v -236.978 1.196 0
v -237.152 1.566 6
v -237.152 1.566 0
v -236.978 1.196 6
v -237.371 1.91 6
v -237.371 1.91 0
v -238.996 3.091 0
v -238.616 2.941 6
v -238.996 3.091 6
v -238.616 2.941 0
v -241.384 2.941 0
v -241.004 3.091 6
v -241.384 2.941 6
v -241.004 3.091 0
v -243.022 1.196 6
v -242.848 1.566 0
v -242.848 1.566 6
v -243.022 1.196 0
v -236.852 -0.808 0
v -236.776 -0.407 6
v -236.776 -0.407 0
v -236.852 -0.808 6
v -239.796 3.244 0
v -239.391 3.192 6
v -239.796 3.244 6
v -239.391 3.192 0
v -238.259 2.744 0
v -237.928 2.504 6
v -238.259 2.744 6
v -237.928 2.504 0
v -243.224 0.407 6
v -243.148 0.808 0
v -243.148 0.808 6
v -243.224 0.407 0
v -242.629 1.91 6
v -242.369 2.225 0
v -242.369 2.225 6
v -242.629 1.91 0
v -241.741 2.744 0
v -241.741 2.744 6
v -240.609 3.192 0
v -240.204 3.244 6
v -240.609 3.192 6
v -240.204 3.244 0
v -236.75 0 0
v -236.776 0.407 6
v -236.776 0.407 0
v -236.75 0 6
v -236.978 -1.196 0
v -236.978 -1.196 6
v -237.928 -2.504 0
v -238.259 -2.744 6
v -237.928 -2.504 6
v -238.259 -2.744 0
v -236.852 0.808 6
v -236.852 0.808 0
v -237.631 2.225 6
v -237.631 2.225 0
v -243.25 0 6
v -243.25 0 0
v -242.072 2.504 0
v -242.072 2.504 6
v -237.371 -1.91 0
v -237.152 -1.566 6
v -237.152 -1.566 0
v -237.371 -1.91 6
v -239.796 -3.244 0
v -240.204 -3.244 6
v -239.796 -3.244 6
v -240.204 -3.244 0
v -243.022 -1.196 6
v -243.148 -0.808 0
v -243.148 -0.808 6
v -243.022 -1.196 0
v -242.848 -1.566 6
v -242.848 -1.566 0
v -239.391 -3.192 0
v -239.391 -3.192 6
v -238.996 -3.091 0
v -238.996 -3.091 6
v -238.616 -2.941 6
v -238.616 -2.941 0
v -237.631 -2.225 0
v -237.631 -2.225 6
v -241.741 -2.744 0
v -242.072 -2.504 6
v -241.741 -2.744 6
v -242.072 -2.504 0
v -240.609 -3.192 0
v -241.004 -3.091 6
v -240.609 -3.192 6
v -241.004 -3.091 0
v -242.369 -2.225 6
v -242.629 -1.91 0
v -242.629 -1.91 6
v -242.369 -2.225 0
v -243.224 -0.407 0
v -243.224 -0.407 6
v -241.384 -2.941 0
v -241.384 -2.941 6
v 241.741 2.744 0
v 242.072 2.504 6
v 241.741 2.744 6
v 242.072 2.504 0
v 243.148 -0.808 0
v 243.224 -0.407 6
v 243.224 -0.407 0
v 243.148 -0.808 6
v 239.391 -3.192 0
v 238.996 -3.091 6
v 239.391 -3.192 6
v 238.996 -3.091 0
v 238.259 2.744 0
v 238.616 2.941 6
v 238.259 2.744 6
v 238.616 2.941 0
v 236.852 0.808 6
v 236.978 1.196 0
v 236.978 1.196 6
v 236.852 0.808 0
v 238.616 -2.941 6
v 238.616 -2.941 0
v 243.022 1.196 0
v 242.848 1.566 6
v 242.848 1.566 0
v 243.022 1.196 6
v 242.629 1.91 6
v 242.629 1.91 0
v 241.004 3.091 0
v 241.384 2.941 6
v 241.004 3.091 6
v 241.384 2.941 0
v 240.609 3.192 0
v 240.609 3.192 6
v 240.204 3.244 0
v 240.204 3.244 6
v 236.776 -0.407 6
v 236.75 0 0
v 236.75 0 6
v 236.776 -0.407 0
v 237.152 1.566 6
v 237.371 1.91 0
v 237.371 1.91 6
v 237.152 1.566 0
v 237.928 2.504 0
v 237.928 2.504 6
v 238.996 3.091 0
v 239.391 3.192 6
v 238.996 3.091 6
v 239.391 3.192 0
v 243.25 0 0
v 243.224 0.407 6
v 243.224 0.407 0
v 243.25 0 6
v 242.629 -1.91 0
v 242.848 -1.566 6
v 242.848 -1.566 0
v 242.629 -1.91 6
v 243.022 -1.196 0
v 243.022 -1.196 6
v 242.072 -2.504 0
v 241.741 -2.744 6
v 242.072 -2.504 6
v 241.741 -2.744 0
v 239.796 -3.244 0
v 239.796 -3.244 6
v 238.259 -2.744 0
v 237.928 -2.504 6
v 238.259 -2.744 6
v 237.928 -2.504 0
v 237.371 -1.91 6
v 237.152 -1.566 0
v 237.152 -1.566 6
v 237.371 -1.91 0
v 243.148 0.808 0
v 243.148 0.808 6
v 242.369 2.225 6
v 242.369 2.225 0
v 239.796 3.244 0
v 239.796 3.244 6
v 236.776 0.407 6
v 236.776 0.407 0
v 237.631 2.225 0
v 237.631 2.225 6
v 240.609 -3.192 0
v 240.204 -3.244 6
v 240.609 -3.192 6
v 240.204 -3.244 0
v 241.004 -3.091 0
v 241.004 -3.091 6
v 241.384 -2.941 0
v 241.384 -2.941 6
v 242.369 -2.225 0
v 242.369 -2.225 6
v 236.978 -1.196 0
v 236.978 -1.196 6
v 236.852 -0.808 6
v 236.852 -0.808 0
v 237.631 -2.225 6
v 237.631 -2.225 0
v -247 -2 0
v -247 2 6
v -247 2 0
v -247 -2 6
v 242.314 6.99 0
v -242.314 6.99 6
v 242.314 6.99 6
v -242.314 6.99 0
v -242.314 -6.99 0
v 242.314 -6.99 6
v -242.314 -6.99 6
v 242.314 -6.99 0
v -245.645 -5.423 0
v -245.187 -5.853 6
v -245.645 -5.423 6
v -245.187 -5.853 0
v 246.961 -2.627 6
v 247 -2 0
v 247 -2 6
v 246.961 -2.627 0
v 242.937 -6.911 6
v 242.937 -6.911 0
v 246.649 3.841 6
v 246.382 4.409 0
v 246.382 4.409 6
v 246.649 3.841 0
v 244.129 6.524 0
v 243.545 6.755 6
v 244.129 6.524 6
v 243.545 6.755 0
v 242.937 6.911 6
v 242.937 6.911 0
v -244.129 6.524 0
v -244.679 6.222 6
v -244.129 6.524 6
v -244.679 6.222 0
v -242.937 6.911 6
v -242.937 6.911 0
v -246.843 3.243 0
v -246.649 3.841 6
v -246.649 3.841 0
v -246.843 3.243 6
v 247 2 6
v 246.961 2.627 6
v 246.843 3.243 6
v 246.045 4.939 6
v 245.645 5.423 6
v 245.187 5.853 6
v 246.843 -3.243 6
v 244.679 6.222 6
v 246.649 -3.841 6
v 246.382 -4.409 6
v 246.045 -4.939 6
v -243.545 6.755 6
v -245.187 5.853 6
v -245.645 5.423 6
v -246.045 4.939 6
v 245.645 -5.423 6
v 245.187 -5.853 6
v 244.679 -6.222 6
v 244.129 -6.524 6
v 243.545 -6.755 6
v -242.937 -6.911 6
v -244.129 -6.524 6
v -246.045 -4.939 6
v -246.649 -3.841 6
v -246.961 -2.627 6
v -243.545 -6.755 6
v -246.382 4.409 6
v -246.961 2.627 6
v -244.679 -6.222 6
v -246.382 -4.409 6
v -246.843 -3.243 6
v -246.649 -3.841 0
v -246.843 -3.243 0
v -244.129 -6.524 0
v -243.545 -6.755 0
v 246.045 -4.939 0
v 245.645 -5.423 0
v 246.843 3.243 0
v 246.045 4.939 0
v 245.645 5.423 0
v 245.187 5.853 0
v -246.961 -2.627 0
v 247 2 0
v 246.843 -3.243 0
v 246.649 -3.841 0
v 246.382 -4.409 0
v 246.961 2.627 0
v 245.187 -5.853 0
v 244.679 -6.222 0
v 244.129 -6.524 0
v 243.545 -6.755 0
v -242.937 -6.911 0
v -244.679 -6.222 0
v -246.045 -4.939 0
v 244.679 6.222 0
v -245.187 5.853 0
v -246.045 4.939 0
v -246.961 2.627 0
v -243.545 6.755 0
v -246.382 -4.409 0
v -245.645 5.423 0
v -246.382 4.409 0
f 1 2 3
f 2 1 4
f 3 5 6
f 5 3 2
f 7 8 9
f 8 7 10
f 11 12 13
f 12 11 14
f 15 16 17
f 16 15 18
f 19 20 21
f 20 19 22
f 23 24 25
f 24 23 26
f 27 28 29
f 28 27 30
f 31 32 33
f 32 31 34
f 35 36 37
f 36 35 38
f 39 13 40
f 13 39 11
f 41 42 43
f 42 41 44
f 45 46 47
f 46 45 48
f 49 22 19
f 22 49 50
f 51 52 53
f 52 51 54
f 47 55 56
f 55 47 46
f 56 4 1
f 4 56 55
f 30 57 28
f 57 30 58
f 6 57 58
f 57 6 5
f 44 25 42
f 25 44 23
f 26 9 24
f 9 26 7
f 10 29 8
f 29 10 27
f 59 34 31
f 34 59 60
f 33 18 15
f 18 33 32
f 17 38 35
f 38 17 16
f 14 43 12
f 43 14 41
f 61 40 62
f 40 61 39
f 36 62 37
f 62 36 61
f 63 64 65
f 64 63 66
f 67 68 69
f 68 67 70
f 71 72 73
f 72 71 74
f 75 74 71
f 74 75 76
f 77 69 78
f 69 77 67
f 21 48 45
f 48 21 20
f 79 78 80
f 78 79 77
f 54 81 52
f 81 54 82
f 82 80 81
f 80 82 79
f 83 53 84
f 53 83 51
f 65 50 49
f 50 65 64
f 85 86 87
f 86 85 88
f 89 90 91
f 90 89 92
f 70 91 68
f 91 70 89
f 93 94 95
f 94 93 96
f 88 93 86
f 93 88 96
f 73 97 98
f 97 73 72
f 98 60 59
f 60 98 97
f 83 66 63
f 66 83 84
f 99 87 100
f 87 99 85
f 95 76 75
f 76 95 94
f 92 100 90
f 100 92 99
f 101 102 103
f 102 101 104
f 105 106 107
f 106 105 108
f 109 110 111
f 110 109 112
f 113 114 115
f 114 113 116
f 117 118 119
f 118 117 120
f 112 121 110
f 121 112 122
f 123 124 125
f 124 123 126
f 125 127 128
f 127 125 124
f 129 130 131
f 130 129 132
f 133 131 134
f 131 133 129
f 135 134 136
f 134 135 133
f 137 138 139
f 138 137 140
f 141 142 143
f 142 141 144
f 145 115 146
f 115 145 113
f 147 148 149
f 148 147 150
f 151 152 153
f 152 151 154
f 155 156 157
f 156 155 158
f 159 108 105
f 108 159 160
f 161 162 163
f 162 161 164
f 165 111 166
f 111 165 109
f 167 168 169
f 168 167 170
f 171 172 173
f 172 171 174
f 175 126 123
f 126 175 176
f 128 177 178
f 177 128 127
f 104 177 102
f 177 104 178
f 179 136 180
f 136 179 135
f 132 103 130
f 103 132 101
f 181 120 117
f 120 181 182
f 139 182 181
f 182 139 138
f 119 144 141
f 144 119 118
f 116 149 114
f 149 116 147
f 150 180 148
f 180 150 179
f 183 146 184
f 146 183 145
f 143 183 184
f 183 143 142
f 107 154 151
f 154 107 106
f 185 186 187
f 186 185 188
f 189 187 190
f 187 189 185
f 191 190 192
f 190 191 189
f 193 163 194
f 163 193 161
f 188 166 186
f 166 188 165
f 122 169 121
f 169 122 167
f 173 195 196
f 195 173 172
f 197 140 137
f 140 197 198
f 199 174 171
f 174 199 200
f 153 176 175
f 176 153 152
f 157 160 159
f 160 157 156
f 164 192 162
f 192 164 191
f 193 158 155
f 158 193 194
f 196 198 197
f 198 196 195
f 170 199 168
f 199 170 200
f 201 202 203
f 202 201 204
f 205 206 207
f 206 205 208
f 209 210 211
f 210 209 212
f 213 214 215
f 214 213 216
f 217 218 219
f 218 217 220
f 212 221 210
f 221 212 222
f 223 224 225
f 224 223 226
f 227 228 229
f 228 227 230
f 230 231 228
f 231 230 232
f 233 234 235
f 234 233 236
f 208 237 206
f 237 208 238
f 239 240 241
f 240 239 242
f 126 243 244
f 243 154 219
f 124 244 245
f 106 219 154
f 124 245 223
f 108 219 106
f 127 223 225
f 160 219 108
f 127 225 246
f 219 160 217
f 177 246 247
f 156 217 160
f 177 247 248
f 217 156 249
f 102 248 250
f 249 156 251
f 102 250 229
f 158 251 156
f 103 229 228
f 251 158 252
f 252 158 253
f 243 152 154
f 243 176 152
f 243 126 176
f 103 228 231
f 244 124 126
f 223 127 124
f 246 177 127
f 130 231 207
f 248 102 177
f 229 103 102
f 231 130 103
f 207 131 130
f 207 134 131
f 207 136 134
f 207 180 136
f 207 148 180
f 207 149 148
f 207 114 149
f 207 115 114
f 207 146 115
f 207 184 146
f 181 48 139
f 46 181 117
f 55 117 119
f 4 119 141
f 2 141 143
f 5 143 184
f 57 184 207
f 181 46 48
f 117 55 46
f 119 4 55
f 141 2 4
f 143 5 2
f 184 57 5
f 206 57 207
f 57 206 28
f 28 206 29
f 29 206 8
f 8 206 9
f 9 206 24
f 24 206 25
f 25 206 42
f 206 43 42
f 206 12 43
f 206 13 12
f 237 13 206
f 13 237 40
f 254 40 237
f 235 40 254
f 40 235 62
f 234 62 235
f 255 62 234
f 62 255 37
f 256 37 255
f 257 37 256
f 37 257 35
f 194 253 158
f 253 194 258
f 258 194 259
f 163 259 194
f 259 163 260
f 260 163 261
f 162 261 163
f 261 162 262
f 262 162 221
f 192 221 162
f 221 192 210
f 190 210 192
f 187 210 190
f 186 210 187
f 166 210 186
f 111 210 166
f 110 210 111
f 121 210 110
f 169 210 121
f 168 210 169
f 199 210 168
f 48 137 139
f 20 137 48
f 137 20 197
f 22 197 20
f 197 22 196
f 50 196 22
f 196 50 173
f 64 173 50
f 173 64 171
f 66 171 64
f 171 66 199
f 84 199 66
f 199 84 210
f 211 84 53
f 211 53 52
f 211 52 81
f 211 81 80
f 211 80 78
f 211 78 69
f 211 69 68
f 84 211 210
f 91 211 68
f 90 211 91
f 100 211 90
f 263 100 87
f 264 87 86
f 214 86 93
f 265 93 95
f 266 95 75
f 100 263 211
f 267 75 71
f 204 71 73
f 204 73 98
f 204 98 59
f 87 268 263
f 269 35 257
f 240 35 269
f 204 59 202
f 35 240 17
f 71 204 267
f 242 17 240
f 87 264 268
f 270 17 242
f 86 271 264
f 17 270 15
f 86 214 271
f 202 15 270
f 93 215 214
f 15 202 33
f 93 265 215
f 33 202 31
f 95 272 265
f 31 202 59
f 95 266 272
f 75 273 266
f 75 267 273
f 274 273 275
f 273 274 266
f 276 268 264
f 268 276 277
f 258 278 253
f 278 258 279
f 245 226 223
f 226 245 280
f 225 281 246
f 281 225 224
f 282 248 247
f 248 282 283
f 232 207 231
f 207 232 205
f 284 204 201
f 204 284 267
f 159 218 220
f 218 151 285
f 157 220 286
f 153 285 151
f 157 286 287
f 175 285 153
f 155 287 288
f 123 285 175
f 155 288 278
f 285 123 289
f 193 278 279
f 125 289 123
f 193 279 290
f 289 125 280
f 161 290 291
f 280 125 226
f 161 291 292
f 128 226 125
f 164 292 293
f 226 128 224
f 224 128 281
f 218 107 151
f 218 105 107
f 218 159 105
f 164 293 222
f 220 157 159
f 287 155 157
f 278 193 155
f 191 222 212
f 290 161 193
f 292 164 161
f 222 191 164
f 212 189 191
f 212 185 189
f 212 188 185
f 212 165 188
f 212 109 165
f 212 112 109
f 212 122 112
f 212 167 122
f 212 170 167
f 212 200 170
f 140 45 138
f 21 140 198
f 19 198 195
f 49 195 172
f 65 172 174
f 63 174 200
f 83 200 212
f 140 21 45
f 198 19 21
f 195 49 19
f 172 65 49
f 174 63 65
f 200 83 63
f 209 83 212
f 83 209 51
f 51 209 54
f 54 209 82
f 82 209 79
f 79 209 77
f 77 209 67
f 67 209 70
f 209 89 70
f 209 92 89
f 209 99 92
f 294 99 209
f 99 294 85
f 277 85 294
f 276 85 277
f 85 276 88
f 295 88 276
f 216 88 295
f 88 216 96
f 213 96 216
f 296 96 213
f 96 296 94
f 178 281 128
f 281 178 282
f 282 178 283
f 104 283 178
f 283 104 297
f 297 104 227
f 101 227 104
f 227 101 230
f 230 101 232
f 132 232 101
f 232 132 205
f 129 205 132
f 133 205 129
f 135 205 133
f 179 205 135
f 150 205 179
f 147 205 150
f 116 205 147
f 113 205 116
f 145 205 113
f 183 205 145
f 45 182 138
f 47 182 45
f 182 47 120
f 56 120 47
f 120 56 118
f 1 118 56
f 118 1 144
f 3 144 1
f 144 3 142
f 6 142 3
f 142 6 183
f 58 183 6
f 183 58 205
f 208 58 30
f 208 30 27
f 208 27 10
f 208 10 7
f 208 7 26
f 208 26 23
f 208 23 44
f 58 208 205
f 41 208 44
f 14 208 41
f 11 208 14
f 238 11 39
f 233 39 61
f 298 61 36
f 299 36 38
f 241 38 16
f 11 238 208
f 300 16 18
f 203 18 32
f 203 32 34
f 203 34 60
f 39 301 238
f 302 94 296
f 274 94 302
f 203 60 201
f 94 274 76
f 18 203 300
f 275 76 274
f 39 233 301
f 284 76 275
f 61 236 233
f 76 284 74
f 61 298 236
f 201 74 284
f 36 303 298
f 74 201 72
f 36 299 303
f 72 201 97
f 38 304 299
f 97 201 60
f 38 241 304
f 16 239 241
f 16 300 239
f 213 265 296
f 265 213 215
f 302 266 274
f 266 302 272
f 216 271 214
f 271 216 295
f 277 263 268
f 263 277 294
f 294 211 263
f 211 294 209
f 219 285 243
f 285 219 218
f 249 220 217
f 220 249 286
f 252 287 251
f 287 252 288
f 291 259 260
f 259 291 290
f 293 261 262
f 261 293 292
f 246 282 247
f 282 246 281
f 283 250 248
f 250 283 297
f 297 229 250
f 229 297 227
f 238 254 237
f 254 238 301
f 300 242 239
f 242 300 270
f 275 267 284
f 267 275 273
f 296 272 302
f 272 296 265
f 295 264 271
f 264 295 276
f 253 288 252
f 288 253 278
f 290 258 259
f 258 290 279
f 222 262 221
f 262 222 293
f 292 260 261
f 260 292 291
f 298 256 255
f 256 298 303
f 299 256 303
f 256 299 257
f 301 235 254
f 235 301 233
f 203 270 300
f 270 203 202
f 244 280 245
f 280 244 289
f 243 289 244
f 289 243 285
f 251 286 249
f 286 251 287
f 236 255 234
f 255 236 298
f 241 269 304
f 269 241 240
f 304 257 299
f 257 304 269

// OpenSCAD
$fn = 50;


difference() {
	union() {
		hull() {
			translate(v = [-242.0000000000, 2.0000000000, 0]) {
				cylinder(h = 6, r = 5);
			}
			translate(v = [242.0000000000, 2.0000000000, 0]) {
				cylinder(h = 6, r = 5);
			}
			translate(v = [-242.0000000000, -2.0000000000, 0]) {
				cylinder(h = 6, r = 5);
			}
			translate(v = [242.0000000000, -2.0000000000, 0]) {
				cylinder(h = 6, r = 5);
			}
		}
	}
	union() {
		translate(v = [-240.0000000000, 0.0000000000, -100.0000000000]) {
			cylinder(h = 200, r = 3.2500000000);
		}
		translate(v = [-240.0000000000, 0.0000000000, -100.0000000000]) {
			cylinder(h = 200, r = 3.2500000000);
		}
		translate(v = [240.0000000000, 0.0000000000, -100.0000000000]) {
			cylinder(h = 200, r = 3.2500000000);
		}
		translate(v = [240.0000000000, 0.0000000000, -100.0000000000]) {
			cylinder(h = 200, r = 3.2500000000);
		}
	}
}
